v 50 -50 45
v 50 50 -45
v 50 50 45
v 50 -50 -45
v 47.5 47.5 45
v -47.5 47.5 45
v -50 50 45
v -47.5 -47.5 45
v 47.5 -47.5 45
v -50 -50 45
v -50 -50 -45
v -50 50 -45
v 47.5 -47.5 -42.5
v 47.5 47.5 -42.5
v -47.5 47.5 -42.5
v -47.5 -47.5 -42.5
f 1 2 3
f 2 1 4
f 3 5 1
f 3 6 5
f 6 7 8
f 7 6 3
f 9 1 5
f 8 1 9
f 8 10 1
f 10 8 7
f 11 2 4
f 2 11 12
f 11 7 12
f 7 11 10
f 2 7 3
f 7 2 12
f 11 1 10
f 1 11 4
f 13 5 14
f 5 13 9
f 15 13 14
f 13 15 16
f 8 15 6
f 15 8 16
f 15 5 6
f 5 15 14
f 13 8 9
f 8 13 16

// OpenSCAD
// ========================================
// a 100 x 100 x 90 mm enclosure with 2.5 mm wall thickness
// NeuroCAD canonical IR; dimensions are millimetres
// ========================================
$fn = 48;

difference() {
  cube(size=[100, 100, 90], center=true);
  translate([0, 0, 1.35]) {
    cube(size=[95, 95, 87.7], center=true);
  }
}
